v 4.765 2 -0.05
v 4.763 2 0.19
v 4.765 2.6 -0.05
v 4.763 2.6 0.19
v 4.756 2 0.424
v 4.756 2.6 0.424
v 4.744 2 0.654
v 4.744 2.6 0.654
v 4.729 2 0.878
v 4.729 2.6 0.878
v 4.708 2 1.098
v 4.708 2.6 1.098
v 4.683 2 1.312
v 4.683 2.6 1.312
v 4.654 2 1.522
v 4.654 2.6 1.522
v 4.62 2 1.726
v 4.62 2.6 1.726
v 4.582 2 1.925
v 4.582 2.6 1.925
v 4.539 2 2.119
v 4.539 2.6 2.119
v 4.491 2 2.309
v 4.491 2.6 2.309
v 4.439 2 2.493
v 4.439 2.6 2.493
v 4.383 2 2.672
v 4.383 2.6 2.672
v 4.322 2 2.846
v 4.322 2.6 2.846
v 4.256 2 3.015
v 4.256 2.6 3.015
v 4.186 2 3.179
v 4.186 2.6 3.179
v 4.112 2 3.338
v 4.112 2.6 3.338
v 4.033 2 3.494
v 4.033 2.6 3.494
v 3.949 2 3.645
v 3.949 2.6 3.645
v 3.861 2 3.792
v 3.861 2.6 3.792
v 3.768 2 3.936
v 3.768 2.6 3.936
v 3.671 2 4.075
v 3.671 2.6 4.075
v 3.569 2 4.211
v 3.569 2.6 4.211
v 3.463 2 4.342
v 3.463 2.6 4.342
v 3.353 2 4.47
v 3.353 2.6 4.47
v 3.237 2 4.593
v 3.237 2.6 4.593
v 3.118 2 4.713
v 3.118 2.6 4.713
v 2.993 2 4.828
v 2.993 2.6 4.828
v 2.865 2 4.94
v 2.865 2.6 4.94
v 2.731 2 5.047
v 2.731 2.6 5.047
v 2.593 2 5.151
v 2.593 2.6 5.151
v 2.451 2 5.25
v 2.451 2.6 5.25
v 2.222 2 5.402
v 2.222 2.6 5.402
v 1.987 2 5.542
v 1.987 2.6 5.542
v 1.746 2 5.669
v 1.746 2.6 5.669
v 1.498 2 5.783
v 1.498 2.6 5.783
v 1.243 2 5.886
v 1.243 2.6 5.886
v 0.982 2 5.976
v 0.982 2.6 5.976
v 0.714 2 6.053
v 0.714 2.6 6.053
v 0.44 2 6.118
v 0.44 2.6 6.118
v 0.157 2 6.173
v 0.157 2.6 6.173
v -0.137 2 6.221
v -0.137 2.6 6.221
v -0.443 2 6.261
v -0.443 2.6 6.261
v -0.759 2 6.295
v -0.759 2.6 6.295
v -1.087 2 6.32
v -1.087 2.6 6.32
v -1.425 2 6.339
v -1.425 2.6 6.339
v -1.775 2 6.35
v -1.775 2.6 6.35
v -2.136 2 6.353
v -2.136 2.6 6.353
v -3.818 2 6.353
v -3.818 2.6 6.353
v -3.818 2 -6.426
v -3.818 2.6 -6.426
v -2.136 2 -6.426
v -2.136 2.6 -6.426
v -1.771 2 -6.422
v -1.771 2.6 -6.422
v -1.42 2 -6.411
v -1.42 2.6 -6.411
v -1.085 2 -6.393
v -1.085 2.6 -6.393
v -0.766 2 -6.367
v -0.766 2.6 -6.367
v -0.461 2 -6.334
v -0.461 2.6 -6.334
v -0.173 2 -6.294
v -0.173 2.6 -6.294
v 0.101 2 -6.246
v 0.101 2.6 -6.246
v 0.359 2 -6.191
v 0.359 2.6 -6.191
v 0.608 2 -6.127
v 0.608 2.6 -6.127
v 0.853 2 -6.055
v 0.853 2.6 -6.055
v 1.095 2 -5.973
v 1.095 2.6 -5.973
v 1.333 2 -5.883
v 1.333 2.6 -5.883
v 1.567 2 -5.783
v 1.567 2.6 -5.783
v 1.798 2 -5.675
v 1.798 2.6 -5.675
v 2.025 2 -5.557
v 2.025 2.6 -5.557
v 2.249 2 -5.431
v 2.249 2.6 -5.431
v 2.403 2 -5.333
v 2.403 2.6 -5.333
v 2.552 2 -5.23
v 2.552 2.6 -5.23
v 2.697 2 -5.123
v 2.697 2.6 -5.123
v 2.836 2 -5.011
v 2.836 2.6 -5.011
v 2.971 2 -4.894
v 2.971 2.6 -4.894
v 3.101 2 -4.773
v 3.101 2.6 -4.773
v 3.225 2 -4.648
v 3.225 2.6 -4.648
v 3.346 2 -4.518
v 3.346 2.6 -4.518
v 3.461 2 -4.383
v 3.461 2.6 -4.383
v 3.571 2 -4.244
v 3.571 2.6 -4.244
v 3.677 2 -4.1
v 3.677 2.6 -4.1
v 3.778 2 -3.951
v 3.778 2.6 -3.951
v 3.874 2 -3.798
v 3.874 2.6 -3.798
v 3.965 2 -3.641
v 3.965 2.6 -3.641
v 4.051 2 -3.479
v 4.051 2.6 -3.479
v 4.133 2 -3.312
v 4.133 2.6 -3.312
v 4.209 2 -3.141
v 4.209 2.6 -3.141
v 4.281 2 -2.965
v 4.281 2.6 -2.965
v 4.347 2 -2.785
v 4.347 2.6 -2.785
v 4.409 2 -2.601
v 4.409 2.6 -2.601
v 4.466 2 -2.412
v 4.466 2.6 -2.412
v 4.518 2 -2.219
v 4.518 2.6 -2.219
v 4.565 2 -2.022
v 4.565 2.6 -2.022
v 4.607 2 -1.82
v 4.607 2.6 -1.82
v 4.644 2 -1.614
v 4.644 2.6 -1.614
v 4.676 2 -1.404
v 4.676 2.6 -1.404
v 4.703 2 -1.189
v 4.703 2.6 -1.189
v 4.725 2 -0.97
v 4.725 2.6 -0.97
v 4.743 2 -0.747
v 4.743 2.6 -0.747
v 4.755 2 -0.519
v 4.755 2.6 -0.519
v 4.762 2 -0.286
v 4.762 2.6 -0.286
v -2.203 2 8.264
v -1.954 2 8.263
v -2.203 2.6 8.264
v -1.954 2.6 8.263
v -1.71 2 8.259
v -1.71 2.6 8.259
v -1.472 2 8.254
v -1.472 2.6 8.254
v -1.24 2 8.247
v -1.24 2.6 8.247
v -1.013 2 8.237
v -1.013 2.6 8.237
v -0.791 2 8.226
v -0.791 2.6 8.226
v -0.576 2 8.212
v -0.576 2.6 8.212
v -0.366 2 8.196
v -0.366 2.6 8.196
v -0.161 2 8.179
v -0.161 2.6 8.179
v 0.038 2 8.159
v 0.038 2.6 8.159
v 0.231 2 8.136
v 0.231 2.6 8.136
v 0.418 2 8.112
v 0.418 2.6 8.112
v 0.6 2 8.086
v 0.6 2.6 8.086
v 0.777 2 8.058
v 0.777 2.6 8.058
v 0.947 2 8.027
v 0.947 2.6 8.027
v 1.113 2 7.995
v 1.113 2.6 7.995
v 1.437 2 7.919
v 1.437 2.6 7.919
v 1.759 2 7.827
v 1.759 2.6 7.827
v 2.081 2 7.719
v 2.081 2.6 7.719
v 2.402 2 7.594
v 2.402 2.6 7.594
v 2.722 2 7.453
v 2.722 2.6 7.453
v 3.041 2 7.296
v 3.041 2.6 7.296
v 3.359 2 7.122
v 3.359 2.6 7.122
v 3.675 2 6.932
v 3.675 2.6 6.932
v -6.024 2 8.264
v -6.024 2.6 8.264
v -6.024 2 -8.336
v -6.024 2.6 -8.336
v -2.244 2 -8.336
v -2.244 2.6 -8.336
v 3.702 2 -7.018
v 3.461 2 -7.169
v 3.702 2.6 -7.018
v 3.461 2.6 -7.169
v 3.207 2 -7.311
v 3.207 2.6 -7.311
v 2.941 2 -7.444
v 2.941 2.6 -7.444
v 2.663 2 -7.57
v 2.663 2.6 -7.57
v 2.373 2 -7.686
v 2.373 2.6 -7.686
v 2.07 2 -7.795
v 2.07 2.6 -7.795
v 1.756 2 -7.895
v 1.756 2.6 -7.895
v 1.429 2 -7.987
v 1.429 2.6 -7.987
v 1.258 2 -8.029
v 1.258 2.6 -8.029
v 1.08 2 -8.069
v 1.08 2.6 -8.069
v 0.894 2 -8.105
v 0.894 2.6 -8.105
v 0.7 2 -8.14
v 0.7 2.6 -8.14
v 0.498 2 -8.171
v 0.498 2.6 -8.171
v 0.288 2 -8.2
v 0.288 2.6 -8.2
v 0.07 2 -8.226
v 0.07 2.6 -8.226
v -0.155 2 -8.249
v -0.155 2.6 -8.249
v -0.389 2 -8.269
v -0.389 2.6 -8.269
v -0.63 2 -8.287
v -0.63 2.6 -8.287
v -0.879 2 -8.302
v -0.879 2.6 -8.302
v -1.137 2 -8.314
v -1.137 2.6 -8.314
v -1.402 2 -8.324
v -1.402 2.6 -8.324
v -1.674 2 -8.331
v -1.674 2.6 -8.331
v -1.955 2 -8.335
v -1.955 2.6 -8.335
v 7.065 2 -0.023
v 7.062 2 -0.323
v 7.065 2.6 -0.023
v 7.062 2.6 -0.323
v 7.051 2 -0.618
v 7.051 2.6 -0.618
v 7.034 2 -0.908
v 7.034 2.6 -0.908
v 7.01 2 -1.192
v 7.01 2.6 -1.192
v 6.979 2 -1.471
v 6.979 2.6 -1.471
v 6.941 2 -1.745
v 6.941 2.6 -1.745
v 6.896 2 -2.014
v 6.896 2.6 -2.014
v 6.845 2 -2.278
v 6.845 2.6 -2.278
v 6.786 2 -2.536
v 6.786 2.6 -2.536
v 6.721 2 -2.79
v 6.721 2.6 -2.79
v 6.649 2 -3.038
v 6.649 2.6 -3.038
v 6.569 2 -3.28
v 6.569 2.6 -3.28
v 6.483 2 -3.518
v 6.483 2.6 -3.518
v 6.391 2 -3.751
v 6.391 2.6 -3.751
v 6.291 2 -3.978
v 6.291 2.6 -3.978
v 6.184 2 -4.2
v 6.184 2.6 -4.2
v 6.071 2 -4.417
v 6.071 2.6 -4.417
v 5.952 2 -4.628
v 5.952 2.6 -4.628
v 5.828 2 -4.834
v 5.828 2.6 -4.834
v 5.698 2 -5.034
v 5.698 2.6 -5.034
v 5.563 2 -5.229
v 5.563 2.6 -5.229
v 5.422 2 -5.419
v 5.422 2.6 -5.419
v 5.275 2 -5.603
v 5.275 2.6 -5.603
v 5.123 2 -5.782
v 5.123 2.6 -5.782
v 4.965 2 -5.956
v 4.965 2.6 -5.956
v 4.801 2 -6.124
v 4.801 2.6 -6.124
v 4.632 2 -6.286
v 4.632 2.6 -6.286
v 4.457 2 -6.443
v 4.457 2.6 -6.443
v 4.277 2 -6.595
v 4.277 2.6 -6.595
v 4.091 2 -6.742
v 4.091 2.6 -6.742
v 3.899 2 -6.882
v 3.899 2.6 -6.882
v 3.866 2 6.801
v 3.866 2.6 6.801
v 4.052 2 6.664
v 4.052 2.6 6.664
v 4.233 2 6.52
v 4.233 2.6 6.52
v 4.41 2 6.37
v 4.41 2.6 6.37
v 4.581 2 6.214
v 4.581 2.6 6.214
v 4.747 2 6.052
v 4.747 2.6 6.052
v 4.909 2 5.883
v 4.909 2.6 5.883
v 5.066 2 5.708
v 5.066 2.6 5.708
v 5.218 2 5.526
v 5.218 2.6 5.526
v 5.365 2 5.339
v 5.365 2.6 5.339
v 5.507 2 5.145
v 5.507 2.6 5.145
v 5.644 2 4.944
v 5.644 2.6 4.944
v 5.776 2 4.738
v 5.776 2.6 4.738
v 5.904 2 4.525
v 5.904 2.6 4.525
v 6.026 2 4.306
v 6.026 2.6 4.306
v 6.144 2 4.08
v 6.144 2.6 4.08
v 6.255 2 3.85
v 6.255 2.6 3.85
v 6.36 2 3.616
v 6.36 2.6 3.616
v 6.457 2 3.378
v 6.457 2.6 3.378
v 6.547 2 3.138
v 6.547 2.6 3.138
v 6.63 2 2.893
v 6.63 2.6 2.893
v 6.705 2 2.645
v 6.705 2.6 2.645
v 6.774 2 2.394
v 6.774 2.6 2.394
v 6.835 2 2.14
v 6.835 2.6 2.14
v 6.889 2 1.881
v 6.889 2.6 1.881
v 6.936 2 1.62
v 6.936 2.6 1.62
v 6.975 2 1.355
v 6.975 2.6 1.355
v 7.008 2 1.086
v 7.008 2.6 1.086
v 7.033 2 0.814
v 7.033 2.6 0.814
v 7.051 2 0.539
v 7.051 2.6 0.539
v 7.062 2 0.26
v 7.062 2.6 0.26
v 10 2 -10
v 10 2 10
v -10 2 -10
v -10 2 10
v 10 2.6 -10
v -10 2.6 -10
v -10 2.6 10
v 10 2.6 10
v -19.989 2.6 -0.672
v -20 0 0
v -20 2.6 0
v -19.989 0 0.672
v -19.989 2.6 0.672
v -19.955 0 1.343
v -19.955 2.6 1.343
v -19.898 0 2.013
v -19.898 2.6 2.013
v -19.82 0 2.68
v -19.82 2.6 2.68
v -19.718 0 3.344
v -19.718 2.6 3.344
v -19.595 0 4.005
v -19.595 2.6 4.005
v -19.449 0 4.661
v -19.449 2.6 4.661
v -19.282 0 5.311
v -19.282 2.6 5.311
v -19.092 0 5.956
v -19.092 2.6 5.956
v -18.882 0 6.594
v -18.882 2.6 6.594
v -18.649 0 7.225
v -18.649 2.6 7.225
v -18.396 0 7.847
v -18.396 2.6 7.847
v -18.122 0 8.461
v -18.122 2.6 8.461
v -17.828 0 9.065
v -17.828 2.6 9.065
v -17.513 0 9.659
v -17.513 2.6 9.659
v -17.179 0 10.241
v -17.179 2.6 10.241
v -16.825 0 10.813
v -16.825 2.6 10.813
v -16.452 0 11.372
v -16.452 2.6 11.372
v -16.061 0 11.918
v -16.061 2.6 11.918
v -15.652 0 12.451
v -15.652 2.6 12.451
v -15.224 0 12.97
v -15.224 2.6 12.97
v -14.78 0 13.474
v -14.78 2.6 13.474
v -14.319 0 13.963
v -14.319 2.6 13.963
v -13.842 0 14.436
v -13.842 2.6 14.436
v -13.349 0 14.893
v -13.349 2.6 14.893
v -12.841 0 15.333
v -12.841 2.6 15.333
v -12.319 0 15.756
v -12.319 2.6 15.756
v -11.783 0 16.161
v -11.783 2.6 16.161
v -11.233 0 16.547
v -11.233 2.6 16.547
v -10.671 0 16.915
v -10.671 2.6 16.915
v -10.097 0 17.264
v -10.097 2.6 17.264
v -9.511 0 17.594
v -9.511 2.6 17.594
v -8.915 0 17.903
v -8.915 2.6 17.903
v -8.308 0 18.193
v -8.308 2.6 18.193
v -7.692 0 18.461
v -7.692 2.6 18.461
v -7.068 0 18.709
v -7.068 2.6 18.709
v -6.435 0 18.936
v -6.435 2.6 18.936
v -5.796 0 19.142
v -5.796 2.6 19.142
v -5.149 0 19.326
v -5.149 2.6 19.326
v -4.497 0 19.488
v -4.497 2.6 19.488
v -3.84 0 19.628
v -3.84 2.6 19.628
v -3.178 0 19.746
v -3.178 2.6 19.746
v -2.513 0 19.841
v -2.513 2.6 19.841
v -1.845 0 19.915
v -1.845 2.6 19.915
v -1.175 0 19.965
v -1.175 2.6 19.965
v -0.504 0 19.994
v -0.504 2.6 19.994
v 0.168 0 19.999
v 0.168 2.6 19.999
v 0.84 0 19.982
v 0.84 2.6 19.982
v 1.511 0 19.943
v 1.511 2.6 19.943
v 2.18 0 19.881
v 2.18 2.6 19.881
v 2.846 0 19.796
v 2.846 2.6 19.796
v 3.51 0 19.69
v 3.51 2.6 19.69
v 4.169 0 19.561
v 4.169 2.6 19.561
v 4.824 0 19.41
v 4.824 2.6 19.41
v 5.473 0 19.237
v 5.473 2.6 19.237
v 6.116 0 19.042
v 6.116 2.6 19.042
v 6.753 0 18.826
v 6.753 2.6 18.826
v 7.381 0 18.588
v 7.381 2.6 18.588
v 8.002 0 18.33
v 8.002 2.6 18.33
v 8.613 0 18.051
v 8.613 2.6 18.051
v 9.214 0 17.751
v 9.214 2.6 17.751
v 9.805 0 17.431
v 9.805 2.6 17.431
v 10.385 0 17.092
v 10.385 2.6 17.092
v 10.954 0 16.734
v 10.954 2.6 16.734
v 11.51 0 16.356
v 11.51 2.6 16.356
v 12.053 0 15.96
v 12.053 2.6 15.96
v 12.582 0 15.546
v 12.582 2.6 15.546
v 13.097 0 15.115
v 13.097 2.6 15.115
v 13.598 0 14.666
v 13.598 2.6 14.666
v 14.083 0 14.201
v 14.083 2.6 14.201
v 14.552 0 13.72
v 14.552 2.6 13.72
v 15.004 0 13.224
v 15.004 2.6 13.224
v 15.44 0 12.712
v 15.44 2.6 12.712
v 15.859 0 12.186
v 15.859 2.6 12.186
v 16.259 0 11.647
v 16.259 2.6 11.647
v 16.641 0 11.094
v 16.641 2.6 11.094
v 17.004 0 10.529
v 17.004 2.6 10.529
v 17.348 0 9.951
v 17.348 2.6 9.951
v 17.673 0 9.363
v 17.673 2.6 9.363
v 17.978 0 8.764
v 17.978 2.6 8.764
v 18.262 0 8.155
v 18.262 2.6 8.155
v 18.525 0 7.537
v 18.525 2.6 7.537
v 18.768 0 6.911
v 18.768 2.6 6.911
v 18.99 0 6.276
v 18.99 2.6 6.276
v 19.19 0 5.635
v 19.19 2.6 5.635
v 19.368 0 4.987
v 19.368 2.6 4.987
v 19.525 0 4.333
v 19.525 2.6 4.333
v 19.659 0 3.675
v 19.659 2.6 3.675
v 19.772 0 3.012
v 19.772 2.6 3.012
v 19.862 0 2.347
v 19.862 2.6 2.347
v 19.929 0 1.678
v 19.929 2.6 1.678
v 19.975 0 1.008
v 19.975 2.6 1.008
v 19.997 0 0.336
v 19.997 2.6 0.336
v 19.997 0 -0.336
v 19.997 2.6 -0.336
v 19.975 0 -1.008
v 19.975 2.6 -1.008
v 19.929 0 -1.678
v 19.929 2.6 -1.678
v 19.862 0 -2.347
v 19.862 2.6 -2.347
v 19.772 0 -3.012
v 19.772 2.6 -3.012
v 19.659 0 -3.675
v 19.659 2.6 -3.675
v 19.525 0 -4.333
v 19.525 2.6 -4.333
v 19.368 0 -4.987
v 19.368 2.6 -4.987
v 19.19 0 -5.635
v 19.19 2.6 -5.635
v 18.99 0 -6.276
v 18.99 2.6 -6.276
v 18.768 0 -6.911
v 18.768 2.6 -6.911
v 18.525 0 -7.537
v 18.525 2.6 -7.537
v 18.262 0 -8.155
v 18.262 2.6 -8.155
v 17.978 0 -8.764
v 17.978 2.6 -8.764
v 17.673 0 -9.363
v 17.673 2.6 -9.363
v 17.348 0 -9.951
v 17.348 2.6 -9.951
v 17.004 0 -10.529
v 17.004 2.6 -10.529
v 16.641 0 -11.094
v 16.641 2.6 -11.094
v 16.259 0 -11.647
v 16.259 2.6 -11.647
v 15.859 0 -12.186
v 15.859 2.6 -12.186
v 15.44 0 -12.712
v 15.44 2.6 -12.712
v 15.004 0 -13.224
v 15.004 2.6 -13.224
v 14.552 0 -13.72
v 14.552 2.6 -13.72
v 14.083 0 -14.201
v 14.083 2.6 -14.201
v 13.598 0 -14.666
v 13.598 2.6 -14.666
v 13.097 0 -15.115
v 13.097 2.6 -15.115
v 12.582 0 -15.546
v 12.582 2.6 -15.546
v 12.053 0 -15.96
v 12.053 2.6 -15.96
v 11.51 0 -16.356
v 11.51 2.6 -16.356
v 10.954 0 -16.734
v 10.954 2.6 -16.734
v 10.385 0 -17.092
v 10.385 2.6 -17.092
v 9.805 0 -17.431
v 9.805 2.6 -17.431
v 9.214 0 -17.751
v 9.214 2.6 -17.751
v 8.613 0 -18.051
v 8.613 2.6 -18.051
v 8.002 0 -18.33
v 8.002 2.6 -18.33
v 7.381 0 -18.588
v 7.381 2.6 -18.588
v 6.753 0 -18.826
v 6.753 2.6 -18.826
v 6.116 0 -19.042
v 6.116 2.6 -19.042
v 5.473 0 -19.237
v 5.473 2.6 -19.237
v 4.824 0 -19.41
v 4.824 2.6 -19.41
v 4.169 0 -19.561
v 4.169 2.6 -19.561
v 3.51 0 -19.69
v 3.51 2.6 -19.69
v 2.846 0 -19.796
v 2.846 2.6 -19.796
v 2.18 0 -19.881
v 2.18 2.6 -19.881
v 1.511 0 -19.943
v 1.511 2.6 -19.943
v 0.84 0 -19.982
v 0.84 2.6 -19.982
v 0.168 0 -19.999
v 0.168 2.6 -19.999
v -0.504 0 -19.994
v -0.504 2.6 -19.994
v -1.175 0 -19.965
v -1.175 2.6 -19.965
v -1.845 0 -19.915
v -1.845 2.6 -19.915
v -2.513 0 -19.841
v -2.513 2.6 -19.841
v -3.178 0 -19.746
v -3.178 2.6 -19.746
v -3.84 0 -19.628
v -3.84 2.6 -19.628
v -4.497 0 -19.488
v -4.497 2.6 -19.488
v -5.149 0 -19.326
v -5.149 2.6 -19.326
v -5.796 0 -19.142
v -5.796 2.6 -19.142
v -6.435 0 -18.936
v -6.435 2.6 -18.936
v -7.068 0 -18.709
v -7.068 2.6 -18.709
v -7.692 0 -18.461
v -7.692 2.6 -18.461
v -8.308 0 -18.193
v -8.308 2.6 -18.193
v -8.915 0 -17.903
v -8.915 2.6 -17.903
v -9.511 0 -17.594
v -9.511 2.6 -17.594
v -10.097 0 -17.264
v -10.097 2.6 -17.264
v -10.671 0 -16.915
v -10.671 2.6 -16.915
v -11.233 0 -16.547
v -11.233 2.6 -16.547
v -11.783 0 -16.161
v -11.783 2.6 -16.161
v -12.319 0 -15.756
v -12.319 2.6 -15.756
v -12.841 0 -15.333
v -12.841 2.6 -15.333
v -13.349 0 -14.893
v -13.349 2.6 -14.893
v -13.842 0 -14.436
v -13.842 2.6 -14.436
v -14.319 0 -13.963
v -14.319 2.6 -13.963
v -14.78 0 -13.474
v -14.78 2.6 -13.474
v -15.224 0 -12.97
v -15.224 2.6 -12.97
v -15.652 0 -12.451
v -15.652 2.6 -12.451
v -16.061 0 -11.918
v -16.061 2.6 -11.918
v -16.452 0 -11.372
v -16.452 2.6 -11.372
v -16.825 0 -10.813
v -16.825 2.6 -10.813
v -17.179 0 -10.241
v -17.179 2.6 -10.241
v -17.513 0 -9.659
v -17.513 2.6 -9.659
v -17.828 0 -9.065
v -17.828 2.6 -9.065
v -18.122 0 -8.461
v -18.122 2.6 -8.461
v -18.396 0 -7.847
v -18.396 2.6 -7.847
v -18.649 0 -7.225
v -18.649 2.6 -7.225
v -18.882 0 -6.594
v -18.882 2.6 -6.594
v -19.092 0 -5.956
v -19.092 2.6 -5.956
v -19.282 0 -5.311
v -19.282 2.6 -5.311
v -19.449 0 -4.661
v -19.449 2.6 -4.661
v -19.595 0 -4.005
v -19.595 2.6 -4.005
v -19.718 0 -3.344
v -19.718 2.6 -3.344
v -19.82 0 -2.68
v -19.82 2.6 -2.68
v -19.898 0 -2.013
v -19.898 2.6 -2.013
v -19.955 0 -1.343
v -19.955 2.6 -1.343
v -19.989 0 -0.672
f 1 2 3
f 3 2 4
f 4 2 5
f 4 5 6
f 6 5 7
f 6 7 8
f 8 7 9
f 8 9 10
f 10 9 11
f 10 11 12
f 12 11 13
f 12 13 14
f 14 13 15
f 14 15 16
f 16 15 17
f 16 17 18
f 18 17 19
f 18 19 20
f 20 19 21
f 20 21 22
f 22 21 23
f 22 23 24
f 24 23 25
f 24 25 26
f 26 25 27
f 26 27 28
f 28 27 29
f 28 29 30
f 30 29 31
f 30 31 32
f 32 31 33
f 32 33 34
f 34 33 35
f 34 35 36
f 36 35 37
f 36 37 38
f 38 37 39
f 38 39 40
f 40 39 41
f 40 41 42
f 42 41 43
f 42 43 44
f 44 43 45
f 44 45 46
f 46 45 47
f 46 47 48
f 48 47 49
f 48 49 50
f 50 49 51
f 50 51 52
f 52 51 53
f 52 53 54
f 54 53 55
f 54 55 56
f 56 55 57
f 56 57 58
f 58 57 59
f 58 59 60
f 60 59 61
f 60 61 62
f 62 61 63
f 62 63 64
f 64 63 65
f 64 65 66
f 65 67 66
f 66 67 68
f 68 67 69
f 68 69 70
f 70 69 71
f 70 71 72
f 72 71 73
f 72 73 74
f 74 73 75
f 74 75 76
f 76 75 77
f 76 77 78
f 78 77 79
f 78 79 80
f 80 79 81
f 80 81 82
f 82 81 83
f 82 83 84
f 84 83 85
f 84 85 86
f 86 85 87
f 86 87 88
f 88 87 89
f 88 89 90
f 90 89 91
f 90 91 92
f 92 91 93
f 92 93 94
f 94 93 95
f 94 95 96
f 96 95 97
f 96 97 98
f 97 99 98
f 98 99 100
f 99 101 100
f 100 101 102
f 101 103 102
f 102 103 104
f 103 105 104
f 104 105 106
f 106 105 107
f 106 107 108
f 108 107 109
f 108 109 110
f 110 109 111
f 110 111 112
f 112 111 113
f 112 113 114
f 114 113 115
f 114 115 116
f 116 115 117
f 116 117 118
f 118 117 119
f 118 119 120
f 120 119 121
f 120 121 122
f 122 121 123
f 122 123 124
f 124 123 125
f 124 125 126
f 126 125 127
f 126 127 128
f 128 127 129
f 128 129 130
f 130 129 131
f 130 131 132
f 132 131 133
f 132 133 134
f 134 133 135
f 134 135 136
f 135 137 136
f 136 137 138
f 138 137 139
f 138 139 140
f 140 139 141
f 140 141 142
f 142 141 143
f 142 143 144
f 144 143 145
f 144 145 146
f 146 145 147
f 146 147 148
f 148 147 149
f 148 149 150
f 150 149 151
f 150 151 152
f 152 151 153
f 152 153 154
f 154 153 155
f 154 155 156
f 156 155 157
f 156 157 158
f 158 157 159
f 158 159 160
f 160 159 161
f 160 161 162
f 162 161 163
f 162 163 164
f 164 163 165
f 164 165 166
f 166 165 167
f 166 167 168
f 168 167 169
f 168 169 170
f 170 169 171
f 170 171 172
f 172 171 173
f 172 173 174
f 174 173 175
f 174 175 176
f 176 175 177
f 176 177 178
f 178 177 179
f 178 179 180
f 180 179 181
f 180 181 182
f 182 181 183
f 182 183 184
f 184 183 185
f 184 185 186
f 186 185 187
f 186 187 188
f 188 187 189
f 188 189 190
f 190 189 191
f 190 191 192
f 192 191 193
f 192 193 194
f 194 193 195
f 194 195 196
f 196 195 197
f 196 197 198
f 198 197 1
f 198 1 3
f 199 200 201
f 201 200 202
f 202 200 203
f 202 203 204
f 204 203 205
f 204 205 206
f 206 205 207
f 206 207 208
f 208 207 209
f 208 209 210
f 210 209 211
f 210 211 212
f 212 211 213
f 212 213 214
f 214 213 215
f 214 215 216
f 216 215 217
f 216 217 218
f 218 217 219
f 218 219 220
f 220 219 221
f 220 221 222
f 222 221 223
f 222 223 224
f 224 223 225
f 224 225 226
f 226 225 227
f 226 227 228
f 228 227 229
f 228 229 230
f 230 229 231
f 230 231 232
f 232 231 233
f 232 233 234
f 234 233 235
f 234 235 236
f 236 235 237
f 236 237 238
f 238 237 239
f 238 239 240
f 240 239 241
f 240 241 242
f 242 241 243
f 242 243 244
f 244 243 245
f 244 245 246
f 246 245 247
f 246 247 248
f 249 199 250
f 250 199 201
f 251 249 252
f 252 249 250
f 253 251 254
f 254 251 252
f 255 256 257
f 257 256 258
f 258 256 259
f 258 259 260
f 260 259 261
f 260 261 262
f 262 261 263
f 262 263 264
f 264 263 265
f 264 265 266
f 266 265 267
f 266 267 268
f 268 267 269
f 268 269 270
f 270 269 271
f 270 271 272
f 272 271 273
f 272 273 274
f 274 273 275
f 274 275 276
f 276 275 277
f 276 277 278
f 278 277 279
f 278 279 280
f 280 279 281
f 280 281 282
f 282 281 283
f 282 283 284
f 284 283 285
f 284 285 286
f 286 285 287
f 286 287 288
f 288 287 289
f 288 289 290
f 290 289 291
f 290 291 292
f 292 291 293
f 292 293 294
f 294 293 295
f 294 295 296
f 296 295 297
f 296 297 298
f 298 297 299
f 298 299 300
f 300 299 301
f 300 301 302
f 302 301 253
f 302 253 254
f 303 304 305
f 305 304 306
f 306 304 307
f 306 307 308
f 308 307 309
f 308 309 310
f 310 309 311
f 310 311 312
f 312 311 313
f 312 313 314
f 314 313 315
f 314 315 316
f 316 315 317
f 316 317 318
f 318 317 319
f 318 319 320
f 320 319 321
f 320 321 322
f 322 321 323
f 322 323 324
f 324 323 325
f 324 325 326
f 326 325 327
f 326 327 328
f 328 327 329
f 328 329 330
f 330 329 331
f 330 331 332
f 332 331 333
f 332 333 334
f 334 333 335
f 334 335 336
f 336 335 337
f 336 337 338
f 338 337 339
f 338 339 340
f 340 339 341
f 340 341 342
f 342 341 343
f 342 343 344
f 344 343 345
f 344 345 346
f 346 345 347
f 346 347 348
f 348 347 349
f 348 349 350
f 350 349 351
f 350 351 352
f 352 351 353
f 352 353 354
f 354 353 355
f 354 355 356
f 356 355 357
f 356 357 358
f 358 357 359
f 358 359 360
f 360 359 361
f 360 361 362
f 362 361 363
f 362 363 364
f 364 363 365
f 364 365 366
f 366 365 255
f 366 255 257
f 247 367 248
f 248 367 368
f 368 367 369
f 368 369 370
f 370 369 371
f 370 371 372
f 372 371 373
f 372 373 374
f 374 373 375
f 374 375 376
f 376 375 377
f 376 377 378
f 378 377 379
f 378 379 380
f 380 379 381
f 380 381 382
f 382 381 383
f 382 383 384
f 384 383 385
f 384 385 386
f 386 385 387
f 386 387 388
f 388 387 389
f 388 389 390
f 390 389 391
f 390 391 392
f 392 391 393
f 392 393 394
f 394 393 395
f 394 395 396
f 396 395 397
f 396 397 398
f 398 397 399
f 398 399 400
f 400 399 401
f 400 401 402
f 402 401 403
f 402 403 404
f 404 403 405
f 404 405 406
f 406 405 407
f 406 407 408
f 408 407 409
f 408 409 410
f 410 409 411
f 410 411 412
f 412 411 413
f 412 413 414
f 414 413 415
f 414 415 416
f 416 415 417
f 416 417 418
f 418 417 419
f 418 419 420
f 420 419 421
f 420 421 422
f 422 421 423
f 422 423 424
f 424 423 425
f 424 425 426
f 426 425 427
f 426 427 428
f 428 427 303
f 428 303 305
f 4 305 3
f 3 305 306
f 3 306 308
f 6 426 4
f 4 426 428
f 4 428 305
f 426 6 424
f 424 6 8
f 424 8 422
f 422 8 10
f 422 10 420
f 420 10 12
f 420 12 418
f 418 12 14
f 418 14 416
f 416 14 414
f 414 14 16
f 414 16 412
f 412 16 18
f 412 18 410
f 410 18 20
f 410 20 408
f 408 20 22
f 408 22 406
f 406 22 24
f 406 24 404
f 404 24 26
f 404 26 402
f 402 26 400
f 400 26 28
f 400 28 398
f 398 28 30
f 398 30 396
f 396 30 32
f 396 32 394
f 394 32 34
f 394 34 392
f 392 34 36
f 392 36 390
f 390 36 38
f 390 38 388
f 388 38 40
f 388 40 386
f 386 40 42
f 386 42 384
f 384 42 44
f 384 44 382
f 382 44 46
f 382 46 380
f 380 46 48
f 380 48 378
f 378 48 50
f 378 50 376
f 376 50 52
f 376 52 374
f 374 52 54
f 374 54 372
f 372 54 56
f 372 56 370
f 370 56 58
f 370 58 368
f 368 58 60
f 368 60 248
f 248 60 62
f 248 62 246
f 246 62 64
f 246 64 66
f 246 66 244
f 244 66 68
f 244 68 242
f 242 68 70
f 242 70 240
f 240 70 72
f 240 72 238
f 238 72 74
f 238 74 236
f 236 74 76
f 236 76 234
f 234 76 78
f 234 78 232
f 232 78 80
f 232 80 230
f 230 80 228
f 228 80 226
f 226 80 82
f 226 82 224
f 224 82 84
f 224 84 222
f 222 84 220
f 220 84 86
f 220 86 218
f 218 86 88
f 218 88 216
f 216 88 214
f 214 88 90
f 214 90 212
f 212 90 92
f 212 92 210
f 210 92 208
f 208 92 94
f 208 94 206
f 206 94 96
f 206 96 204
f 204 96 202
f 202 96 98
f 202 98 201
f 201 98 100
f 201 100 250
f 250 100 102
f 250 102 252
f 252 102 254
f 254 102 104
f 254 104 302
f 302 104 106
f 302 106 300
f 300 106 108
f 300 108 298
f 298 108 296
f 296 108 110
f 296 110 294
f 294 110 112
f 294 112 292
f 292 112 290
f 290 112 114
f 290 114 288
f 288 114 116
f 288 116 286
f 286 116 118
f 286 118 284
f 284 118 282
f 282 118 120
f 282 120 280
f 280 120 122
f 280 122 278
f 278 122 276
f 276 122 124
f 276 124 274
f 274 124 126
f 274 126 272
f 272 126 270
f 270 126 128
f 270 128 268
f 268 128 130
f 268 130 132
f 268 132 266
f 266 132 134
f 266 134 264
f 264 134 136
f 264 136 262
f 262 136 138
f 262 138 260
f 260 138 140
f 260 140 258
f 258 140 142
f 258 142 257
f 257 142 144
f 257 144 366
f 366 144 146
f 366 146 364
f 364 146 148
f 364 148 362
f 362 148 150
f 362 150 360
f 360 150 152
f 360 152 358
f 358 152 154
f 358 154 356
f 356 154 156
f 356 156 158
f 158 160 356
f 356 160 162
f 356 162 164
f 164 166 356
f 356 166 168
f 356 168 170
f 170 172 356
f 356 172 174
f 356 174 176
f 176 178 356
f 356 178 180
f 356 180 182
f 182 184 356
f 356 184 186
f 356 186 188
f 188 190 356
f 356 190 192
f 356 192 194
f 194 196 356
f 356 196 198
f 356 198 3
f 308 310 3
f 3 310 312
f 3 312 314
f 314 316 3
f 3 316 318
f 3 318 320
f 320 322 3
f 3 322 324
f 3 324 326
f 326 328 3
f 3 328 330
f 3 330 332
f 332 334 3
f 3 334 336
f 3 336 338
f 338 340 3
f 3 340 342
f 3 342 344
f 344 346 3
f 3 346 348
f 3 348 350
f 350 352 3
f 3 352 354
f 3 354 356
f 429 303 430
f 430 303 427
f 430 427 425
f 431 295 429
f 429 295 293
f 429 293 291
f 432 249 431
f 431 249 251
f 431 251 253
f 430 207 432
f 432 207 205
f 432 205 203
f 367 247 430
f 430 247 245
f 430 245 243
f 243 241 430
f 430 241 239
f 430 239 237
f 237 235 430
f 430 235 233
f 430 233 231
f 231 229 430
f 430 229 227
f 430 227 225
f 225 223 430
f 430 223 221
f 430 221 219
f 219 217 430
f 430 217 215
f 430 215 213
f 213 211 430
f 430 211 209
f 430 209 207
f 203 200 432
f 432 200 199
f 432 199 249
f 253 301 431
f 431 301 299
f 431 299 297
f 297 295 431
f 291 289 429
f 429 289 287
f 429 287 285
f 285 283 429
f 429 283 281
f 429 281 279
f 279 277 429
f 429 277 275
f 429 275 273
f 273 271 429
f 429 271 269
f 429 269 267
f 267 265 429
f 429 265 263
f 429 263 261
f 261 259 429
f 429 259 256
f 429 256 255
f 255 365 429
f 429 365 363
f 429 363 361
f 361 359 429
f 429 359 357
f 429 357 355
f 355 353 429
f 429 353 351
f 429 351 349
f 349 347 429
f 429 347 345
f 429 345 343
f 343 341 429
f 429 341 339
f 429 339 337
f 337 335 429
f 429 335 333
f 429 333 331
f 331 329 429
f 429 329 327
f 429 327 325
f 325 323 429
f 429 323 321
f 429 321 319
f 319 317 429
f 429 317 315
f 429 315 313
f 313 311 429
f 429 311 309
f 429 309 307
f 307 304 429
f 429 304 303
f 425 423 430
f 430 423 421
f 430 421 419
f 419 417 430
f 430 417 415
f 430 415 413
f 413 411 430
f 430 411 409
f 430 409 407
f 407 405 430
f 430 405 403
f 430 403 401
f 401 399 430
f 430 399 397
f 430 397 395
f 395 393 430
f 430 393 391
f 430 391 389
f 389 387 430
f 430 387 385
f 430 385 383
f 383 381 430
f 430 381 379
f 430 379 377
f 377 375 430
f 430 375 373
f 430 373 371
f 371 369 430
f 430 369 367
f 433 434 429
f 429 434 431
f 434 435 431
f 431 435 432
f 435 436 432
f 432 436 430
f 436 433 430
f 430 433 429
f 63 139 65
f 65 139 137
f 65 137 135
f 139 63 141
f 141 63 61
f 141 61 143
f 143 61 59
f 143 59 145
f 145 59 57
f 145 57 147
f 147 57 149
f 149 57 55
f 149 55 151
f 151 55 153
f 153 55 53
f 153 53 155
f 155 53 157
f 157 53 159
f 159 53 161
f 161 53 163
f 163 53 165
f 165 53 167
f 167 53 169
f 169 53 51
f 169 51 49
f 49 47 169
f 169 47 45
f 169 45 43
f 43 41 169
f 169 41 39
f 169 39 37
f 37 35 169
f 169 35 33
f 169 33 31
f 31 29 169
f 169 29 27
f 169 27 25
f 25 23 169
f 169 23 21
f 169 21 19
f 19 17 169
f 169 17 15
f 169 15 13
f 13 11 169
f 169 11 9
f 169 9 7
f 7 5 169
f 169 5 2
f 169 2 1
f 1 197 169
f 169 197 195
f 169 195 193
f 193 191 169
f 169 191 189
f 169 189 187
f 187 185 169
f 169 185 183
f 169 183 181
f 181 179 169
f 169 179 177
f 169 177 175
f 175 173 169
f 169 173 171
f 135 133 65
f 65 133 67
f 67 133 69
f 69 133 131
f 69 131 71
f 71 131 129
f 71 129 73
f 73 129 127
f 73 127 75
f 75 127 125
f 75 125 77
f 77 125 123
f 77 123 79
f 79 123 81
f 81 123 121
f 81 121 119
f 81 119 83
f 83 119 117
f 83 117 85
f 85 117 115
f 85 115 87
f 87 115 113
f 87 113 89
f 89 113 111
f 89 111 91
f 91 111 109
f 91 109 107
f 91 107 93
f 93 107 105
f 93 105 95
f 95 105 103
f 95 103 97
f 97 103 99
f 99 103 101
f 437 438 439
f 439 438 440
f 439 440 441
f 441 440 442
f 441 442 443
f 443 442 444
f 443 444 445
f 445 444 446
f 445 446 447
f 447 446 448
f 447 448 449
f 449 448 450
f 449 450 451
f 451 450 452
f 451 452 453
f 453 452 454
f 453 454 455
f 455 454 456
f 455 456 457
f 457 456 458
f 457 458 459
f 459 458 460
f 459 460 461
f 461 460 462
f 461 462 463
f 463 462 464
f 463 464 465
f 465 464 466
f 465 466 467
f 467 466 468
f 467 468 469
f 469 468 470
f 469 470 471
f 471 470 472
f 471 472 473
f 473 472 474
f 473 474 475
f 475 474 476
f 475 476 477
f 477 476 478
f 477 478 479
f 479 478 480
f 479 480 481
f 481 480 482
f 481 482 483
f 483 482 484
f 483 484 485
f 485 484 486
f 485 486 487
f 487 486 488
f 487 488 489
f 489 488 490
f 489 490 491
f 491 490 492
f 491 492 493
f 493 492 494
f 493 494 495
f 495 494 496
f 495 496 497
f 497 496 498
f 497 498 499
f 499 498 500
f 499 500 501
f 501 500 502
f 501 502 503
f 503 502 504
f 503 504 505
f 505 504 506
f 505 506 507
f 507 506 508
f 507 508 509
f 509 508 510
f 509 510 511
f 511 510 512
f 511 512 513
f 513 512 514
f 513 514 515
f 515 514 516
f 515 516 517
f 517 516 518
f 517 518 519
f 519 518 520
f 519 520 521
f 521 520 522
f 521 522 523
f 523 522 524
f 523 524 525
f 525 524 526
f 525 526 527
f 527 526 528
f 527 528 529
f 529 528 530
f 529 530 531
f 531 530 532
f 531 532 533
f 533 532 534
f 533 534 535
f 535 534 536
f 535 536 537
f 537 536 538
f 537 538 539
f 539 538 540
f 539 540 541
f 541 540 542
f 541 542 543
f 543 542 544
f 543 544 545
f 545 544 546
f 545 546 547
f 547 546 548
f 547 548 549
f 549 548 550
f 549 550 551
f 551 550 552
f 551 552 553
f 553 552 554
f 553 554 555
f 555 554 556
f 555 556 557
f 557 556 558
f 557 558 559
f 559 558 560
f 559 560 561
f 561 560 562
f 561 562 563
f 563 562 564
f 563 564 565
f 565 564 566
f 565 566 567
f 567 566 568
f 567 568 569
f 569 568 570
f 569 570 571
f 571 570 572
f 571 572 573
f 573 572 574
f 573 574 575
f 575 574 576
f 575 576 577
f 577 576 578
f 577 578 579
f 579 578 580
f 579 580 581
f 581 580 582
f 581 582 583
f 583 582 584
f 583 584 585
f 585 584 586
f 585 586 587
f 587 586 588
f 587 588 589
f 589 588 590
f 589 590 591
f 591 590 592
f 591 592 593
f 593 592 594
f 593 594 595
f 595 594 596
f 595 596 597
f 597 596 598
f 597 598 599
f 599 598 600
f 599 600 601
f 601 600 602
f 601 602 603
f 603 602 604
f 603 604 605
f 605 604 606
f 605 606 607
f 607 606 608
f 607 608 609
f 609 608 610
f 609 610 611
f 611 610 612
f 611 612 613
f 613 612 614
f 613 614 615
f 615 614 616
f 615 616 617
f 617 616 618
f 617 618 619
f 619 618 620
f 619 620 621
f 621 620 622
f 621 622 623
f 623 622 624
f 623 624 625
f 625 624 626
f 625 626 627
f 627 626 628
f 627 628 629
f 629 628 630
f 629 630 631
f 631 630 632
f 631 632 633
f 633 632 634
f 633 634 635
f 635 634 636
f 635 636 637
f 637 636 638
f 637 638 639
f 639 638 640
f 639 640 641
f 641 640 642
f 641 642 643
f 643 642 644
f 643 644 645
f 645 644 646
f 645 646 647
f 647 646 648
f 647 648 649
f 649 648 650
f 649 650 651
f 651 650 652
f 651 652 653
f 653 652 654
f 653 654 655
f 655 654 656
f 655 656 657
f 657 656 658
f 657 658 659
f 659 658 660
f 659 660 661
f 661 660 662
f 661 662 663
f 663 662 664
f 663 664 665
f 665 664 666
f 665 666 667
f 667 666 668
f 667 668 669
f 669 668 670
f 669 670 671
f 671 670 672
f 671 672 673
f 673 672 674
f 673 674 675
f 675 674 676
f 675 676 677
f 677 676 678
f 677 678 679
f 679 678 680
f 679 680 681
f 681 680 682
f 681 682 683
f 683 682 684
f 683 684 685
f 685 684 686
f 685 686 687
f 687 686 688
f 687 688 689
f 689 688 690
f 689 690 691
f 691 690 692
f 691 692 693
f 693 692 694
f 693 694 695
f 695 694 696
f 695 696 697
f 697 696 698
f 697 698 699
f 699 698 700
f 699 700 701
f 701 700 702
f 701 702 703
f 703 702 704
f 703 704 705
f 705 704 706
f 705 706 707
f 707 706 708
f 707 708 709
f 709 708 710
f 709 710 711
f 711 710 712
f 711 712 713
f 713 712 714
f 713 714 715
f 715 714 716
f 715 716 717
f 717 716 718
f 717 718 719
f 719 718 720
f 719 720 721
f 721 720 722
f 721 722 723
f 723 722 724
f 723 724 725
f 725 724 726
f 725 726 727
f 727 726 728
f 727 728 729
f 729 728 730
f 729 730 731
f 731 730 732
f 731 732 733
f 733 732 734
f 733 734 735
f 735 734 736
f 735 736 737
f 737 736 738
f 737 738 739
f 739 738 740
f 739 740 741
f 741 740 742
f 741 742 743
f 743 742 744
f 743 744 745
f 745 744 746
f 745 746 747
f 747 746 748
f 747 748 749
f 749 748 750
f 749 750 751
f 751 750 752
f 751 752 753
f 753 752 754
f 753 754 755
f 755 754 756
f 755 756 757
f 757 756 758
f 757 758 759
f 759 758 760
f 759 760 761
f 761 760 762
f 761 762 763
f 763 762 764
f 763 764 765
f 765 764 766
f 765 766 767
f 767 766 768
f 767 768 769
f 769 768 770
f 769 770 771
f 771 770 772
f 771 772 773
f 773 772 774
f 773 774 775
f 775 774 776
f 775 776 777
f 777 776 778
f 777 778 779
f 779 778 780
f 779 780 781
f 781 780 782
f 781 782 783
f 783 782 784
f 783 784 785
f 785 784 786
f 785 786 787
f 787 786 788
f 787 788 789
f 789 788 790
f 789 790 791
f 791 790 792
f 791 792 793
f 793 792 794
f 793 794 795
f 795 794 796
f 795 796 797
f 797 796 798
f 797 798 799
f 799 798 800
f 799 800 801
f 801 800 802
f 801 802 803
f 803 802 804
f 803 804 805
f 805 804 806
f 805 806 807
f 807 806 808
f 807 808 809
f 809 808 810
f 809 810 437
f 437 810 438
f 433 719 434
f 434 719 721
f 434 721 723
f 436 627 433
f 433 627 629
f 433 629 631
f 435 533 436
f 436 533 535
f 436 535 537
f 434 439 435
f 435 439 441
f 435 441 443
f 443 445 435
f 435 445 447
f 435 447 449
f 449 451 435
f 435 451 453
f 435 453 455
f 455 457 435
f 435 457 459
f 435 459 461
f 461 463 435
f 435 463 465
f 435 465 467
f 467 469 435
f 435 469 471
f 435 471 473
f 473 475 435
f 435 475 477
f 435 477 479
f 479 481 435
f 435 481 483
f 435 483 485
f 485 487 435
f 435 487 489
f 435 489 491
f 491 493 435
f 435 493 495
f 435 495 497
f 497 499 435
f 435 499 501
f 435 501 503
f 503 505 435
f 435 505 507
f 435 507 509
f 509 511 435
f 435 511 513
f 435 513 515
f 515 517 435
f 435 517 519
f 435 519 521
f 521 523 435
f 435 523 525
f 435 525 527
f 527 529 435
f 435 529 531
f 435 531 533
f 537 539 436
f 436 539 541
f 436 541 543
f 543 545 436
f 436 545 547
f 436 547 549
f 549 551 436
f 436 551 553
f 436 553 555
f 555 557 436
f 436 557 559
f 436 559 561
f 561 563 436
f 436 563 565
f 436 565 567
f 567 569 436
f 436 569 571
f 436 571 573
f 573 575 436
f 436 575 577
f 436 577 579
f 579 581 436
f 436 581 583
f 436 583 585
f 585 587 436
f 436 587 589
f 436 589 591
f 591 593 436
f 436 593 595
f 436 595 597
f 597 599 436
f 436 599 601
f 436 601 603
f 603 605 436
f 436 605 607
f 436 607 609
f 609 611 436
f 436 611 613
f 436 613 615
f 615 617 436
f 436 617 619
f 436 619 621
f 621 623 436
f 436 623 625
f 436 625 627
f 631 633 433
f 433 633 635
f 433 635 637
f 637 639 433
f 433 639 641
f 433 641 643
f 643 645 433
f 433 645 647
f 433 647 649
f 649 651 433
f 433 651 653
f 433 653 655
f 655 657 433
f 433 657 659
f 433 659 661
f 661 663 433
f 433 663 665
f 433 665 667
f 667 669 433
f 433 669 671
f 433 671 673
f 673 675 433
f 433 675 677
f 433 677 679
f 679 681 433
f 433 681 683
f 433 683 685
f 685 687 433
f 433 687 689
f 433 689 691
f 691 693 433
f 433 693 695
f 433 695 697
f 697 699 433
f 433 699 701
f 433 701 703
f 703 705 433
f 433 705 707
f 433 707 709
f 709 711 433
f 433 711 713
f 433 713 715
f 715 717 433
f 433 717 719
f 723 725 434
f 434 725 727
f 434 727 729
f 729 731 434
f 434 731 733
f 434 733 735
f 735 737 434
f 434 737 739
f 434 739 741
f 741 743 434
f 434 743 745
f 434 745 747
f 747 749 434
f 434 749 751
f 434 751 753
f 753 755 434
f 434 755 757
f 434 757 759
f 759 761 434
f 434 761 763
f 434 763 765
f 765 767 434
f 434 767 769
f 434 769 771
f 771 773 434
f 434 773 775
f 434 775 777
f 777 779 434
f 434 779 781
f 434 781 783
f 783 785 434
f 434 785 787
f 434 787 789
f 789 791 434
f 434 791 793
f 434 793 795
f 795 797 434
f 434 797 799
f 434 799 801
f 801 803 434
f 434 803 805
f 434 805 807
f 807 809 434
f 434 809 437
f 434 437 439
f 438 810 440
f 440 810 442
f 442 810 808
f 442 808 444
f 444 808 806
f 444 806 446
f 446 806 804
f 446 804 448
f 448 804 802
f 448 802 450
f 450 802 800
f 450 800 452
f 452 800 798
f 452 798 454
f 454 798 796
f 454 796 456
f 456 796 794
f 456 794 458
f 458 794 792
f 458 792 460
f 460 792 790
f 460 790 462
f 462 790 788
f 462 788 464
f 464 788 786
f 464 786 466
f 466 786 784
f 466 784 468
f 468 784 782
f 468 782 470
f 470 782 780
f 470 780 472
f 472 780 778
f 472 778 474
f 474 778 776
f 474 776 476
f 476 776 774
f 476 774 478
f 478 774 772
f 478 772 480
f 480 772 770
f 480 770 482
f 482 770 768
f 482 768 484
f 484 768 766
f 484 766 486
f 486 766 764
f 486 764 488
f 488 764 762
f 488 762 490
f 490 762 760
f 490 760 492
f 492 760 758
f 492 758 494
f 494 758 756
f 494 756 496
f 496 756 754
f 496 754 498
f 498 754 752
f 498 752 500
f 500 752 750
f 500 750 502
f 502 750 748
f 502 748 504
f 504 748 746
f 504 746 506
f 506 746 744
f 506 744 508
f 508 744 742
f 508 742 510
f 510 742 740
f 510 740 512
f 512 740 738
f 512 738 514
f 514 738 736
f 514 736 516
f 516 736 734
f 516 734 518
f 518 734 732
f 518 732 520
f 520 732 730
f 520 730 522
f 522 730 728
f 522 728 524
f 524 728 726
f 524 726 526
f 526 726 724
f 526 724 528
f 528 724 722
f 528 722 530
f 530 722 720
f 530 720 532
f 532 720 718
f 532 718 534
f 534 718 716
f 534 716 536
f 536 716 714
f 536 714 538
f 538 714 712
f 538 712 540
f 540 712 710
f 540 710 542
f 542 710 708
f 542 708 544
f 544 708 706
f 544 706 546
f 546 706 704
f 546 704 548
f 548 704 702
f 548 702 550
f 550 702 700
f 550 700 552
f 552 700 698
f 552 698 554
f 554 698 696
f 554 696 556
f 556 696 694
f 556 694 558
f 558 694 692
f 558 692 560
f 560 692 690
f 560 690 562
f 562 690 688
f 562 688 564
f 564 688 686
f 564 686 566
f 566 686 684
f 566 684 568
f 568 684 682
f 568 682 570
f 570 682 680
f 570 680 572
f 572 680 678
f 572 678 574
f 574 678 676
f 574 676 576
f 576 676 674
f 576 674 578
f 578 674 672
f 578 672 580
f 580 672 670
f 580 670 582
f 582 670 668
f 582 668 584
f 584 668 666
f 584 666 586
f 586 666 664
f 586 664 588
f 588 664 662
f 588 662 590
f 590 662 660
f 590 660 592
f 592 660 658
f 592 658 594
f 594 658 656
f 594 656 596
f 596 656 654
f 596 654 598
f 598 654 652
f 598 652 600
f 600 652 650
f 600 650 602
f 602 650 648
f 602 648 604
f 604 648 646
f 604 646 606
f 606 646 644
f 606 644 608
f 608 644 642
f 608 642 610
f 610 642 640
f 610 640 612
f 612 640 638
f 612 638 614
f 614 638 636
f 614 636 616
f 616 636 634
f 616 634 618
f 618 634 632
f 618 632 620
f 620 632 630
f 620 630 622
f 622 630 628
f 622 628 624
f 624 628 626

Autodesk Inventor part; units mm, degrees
ref_plane "YZ Plane" through (0, 0, 0) normal (1, 0, 0) x (0, 1, 0)
ref_plane "XZ Plane" through (0, 0, 0) normal (0, 1, 0) x (-1, 0, 0)
ref_plane "XY Plane" through (0, 0, 0) normal (0, 0, 1) x (1, 0, 0)
sketch "Sketch1" plane through (0, 0, 0) normal (0, 1, 0) x (-1, 0, 0)
  circle A0 centre (0, 0) radius 20
  dimension "d0" = 40
extrude "Extrusion1" add sketch "Sketch1" along normal blind 2.6
sketch "Sketch2" plane through (0, 2.6, 0) normal (0, 1, 0) x (1, 0, 0)
  line L0 (-10, -10) -> (-10, 10)
  line L1 (-10, 10) -> (10, 10)
  line L2 (10, 10) -> (10, -10)
  line L3 (10, -10) -> (-10, -10)
  line L4 (-10, -10) -> (10, 10) construction
  line L5 (-10, 10) -> (10, -10) construction
  point P0 (0, 0)
  dimension "d3" = 20
  dimension "d4" = 20
extrude "Extrusion2" cut sketch "Sketch2" against normal blind 0.6
sketch "Sketch3" plane through (0, 2, 0) normal (0, 1, 0) x (1, 0, 0)
  line L0 (-7.7054, 8.3364) -> (7.7781, 8.3364) construction
  line L1 (7.7781, 8.3364) -> (7.7781, -8.2636) construction
  line L2 (7.7781, -8.2636) -> (-7.7054, -8.2636) construction
  line L3 (-7.7054, -8.2636) -> (-7.7054, 8.3364) construction
  spline S0 degree 2 poles (7.0651, 0.0229) (7.0651, -2.2505) (5.2222, -5.9095) (3.6752, -6.9319) knots 0 0 0 1 2 2 2
  spline S1 degree 2 poles (3.6752, -6.9319) (2.4107, -7.7256) (-0.1856, -8.2636) (-2.2034, -8.2636) knots 0 0 0 1 2 2 2
  line L4 (-2.2034, -8.2636) -> (-6.0239, -8.2636)
  line L5 (-6.0239, -8.2636) -> (-6.0239, 8.3364)
  line L6 (-6.0239, 8.3364) -> (-2.2438, 8.3364)
  spline S2 degree 2 poles (-2.2438, 8.3364) (0.0969, 8.3364) (2.7604, 7.6368) (3.7021, 7.018) knots 0 0 0 1 2 2 2
  spline S3 degree 2 poles (3.7021, 7.018) (5.3029, 5.9553) (7.0651, 2.4443) (7.0651, 0.0229) knots 0 0 0 1 2 2 2
  spline S4 degree 2 poles (4.7648, 0.0498) (4.7648, 1.96) (3.5003, 4.6639) (2.2492, 5.4307) knots 0 0 0 1 2 2 2
  spline S5 degree 2 poles (2.2492, 5.4307) (1.3614, 5.9553) (-0.643, 6.4261) (-2.1362, 6.4261) knots 0 0 0 1 2 2 2
  line L7 (-2.1362, 6.4261) -> (-3.8177, 6.4261)
  line L8 (-3.8177, 6.4261) -> (-3.8177, -6.3534)
  line L9 (-3.8177, -6.3534) -> (-2.1362, -6.3534)
  spline S6 degree 2 poles (-2.1362, -6.3534) (-0.6699, -6.3534) (1.5497, -5.8826) (2.451, -5.2504) knots 0 0 0 1 2 2 2
  spline S7 degree 2 poles (2.451, -5.2504) (3.6079, -4.4701) (4.7648, -1.8873) (4.7648, 0.0498) knots 0 0 0 1 2 2 2
  point P0 (0, 0)
extrude "Extrusion3" add sketch "Sketch3" along normal blind 0.6
properties part number "TopMarkerPreset"
